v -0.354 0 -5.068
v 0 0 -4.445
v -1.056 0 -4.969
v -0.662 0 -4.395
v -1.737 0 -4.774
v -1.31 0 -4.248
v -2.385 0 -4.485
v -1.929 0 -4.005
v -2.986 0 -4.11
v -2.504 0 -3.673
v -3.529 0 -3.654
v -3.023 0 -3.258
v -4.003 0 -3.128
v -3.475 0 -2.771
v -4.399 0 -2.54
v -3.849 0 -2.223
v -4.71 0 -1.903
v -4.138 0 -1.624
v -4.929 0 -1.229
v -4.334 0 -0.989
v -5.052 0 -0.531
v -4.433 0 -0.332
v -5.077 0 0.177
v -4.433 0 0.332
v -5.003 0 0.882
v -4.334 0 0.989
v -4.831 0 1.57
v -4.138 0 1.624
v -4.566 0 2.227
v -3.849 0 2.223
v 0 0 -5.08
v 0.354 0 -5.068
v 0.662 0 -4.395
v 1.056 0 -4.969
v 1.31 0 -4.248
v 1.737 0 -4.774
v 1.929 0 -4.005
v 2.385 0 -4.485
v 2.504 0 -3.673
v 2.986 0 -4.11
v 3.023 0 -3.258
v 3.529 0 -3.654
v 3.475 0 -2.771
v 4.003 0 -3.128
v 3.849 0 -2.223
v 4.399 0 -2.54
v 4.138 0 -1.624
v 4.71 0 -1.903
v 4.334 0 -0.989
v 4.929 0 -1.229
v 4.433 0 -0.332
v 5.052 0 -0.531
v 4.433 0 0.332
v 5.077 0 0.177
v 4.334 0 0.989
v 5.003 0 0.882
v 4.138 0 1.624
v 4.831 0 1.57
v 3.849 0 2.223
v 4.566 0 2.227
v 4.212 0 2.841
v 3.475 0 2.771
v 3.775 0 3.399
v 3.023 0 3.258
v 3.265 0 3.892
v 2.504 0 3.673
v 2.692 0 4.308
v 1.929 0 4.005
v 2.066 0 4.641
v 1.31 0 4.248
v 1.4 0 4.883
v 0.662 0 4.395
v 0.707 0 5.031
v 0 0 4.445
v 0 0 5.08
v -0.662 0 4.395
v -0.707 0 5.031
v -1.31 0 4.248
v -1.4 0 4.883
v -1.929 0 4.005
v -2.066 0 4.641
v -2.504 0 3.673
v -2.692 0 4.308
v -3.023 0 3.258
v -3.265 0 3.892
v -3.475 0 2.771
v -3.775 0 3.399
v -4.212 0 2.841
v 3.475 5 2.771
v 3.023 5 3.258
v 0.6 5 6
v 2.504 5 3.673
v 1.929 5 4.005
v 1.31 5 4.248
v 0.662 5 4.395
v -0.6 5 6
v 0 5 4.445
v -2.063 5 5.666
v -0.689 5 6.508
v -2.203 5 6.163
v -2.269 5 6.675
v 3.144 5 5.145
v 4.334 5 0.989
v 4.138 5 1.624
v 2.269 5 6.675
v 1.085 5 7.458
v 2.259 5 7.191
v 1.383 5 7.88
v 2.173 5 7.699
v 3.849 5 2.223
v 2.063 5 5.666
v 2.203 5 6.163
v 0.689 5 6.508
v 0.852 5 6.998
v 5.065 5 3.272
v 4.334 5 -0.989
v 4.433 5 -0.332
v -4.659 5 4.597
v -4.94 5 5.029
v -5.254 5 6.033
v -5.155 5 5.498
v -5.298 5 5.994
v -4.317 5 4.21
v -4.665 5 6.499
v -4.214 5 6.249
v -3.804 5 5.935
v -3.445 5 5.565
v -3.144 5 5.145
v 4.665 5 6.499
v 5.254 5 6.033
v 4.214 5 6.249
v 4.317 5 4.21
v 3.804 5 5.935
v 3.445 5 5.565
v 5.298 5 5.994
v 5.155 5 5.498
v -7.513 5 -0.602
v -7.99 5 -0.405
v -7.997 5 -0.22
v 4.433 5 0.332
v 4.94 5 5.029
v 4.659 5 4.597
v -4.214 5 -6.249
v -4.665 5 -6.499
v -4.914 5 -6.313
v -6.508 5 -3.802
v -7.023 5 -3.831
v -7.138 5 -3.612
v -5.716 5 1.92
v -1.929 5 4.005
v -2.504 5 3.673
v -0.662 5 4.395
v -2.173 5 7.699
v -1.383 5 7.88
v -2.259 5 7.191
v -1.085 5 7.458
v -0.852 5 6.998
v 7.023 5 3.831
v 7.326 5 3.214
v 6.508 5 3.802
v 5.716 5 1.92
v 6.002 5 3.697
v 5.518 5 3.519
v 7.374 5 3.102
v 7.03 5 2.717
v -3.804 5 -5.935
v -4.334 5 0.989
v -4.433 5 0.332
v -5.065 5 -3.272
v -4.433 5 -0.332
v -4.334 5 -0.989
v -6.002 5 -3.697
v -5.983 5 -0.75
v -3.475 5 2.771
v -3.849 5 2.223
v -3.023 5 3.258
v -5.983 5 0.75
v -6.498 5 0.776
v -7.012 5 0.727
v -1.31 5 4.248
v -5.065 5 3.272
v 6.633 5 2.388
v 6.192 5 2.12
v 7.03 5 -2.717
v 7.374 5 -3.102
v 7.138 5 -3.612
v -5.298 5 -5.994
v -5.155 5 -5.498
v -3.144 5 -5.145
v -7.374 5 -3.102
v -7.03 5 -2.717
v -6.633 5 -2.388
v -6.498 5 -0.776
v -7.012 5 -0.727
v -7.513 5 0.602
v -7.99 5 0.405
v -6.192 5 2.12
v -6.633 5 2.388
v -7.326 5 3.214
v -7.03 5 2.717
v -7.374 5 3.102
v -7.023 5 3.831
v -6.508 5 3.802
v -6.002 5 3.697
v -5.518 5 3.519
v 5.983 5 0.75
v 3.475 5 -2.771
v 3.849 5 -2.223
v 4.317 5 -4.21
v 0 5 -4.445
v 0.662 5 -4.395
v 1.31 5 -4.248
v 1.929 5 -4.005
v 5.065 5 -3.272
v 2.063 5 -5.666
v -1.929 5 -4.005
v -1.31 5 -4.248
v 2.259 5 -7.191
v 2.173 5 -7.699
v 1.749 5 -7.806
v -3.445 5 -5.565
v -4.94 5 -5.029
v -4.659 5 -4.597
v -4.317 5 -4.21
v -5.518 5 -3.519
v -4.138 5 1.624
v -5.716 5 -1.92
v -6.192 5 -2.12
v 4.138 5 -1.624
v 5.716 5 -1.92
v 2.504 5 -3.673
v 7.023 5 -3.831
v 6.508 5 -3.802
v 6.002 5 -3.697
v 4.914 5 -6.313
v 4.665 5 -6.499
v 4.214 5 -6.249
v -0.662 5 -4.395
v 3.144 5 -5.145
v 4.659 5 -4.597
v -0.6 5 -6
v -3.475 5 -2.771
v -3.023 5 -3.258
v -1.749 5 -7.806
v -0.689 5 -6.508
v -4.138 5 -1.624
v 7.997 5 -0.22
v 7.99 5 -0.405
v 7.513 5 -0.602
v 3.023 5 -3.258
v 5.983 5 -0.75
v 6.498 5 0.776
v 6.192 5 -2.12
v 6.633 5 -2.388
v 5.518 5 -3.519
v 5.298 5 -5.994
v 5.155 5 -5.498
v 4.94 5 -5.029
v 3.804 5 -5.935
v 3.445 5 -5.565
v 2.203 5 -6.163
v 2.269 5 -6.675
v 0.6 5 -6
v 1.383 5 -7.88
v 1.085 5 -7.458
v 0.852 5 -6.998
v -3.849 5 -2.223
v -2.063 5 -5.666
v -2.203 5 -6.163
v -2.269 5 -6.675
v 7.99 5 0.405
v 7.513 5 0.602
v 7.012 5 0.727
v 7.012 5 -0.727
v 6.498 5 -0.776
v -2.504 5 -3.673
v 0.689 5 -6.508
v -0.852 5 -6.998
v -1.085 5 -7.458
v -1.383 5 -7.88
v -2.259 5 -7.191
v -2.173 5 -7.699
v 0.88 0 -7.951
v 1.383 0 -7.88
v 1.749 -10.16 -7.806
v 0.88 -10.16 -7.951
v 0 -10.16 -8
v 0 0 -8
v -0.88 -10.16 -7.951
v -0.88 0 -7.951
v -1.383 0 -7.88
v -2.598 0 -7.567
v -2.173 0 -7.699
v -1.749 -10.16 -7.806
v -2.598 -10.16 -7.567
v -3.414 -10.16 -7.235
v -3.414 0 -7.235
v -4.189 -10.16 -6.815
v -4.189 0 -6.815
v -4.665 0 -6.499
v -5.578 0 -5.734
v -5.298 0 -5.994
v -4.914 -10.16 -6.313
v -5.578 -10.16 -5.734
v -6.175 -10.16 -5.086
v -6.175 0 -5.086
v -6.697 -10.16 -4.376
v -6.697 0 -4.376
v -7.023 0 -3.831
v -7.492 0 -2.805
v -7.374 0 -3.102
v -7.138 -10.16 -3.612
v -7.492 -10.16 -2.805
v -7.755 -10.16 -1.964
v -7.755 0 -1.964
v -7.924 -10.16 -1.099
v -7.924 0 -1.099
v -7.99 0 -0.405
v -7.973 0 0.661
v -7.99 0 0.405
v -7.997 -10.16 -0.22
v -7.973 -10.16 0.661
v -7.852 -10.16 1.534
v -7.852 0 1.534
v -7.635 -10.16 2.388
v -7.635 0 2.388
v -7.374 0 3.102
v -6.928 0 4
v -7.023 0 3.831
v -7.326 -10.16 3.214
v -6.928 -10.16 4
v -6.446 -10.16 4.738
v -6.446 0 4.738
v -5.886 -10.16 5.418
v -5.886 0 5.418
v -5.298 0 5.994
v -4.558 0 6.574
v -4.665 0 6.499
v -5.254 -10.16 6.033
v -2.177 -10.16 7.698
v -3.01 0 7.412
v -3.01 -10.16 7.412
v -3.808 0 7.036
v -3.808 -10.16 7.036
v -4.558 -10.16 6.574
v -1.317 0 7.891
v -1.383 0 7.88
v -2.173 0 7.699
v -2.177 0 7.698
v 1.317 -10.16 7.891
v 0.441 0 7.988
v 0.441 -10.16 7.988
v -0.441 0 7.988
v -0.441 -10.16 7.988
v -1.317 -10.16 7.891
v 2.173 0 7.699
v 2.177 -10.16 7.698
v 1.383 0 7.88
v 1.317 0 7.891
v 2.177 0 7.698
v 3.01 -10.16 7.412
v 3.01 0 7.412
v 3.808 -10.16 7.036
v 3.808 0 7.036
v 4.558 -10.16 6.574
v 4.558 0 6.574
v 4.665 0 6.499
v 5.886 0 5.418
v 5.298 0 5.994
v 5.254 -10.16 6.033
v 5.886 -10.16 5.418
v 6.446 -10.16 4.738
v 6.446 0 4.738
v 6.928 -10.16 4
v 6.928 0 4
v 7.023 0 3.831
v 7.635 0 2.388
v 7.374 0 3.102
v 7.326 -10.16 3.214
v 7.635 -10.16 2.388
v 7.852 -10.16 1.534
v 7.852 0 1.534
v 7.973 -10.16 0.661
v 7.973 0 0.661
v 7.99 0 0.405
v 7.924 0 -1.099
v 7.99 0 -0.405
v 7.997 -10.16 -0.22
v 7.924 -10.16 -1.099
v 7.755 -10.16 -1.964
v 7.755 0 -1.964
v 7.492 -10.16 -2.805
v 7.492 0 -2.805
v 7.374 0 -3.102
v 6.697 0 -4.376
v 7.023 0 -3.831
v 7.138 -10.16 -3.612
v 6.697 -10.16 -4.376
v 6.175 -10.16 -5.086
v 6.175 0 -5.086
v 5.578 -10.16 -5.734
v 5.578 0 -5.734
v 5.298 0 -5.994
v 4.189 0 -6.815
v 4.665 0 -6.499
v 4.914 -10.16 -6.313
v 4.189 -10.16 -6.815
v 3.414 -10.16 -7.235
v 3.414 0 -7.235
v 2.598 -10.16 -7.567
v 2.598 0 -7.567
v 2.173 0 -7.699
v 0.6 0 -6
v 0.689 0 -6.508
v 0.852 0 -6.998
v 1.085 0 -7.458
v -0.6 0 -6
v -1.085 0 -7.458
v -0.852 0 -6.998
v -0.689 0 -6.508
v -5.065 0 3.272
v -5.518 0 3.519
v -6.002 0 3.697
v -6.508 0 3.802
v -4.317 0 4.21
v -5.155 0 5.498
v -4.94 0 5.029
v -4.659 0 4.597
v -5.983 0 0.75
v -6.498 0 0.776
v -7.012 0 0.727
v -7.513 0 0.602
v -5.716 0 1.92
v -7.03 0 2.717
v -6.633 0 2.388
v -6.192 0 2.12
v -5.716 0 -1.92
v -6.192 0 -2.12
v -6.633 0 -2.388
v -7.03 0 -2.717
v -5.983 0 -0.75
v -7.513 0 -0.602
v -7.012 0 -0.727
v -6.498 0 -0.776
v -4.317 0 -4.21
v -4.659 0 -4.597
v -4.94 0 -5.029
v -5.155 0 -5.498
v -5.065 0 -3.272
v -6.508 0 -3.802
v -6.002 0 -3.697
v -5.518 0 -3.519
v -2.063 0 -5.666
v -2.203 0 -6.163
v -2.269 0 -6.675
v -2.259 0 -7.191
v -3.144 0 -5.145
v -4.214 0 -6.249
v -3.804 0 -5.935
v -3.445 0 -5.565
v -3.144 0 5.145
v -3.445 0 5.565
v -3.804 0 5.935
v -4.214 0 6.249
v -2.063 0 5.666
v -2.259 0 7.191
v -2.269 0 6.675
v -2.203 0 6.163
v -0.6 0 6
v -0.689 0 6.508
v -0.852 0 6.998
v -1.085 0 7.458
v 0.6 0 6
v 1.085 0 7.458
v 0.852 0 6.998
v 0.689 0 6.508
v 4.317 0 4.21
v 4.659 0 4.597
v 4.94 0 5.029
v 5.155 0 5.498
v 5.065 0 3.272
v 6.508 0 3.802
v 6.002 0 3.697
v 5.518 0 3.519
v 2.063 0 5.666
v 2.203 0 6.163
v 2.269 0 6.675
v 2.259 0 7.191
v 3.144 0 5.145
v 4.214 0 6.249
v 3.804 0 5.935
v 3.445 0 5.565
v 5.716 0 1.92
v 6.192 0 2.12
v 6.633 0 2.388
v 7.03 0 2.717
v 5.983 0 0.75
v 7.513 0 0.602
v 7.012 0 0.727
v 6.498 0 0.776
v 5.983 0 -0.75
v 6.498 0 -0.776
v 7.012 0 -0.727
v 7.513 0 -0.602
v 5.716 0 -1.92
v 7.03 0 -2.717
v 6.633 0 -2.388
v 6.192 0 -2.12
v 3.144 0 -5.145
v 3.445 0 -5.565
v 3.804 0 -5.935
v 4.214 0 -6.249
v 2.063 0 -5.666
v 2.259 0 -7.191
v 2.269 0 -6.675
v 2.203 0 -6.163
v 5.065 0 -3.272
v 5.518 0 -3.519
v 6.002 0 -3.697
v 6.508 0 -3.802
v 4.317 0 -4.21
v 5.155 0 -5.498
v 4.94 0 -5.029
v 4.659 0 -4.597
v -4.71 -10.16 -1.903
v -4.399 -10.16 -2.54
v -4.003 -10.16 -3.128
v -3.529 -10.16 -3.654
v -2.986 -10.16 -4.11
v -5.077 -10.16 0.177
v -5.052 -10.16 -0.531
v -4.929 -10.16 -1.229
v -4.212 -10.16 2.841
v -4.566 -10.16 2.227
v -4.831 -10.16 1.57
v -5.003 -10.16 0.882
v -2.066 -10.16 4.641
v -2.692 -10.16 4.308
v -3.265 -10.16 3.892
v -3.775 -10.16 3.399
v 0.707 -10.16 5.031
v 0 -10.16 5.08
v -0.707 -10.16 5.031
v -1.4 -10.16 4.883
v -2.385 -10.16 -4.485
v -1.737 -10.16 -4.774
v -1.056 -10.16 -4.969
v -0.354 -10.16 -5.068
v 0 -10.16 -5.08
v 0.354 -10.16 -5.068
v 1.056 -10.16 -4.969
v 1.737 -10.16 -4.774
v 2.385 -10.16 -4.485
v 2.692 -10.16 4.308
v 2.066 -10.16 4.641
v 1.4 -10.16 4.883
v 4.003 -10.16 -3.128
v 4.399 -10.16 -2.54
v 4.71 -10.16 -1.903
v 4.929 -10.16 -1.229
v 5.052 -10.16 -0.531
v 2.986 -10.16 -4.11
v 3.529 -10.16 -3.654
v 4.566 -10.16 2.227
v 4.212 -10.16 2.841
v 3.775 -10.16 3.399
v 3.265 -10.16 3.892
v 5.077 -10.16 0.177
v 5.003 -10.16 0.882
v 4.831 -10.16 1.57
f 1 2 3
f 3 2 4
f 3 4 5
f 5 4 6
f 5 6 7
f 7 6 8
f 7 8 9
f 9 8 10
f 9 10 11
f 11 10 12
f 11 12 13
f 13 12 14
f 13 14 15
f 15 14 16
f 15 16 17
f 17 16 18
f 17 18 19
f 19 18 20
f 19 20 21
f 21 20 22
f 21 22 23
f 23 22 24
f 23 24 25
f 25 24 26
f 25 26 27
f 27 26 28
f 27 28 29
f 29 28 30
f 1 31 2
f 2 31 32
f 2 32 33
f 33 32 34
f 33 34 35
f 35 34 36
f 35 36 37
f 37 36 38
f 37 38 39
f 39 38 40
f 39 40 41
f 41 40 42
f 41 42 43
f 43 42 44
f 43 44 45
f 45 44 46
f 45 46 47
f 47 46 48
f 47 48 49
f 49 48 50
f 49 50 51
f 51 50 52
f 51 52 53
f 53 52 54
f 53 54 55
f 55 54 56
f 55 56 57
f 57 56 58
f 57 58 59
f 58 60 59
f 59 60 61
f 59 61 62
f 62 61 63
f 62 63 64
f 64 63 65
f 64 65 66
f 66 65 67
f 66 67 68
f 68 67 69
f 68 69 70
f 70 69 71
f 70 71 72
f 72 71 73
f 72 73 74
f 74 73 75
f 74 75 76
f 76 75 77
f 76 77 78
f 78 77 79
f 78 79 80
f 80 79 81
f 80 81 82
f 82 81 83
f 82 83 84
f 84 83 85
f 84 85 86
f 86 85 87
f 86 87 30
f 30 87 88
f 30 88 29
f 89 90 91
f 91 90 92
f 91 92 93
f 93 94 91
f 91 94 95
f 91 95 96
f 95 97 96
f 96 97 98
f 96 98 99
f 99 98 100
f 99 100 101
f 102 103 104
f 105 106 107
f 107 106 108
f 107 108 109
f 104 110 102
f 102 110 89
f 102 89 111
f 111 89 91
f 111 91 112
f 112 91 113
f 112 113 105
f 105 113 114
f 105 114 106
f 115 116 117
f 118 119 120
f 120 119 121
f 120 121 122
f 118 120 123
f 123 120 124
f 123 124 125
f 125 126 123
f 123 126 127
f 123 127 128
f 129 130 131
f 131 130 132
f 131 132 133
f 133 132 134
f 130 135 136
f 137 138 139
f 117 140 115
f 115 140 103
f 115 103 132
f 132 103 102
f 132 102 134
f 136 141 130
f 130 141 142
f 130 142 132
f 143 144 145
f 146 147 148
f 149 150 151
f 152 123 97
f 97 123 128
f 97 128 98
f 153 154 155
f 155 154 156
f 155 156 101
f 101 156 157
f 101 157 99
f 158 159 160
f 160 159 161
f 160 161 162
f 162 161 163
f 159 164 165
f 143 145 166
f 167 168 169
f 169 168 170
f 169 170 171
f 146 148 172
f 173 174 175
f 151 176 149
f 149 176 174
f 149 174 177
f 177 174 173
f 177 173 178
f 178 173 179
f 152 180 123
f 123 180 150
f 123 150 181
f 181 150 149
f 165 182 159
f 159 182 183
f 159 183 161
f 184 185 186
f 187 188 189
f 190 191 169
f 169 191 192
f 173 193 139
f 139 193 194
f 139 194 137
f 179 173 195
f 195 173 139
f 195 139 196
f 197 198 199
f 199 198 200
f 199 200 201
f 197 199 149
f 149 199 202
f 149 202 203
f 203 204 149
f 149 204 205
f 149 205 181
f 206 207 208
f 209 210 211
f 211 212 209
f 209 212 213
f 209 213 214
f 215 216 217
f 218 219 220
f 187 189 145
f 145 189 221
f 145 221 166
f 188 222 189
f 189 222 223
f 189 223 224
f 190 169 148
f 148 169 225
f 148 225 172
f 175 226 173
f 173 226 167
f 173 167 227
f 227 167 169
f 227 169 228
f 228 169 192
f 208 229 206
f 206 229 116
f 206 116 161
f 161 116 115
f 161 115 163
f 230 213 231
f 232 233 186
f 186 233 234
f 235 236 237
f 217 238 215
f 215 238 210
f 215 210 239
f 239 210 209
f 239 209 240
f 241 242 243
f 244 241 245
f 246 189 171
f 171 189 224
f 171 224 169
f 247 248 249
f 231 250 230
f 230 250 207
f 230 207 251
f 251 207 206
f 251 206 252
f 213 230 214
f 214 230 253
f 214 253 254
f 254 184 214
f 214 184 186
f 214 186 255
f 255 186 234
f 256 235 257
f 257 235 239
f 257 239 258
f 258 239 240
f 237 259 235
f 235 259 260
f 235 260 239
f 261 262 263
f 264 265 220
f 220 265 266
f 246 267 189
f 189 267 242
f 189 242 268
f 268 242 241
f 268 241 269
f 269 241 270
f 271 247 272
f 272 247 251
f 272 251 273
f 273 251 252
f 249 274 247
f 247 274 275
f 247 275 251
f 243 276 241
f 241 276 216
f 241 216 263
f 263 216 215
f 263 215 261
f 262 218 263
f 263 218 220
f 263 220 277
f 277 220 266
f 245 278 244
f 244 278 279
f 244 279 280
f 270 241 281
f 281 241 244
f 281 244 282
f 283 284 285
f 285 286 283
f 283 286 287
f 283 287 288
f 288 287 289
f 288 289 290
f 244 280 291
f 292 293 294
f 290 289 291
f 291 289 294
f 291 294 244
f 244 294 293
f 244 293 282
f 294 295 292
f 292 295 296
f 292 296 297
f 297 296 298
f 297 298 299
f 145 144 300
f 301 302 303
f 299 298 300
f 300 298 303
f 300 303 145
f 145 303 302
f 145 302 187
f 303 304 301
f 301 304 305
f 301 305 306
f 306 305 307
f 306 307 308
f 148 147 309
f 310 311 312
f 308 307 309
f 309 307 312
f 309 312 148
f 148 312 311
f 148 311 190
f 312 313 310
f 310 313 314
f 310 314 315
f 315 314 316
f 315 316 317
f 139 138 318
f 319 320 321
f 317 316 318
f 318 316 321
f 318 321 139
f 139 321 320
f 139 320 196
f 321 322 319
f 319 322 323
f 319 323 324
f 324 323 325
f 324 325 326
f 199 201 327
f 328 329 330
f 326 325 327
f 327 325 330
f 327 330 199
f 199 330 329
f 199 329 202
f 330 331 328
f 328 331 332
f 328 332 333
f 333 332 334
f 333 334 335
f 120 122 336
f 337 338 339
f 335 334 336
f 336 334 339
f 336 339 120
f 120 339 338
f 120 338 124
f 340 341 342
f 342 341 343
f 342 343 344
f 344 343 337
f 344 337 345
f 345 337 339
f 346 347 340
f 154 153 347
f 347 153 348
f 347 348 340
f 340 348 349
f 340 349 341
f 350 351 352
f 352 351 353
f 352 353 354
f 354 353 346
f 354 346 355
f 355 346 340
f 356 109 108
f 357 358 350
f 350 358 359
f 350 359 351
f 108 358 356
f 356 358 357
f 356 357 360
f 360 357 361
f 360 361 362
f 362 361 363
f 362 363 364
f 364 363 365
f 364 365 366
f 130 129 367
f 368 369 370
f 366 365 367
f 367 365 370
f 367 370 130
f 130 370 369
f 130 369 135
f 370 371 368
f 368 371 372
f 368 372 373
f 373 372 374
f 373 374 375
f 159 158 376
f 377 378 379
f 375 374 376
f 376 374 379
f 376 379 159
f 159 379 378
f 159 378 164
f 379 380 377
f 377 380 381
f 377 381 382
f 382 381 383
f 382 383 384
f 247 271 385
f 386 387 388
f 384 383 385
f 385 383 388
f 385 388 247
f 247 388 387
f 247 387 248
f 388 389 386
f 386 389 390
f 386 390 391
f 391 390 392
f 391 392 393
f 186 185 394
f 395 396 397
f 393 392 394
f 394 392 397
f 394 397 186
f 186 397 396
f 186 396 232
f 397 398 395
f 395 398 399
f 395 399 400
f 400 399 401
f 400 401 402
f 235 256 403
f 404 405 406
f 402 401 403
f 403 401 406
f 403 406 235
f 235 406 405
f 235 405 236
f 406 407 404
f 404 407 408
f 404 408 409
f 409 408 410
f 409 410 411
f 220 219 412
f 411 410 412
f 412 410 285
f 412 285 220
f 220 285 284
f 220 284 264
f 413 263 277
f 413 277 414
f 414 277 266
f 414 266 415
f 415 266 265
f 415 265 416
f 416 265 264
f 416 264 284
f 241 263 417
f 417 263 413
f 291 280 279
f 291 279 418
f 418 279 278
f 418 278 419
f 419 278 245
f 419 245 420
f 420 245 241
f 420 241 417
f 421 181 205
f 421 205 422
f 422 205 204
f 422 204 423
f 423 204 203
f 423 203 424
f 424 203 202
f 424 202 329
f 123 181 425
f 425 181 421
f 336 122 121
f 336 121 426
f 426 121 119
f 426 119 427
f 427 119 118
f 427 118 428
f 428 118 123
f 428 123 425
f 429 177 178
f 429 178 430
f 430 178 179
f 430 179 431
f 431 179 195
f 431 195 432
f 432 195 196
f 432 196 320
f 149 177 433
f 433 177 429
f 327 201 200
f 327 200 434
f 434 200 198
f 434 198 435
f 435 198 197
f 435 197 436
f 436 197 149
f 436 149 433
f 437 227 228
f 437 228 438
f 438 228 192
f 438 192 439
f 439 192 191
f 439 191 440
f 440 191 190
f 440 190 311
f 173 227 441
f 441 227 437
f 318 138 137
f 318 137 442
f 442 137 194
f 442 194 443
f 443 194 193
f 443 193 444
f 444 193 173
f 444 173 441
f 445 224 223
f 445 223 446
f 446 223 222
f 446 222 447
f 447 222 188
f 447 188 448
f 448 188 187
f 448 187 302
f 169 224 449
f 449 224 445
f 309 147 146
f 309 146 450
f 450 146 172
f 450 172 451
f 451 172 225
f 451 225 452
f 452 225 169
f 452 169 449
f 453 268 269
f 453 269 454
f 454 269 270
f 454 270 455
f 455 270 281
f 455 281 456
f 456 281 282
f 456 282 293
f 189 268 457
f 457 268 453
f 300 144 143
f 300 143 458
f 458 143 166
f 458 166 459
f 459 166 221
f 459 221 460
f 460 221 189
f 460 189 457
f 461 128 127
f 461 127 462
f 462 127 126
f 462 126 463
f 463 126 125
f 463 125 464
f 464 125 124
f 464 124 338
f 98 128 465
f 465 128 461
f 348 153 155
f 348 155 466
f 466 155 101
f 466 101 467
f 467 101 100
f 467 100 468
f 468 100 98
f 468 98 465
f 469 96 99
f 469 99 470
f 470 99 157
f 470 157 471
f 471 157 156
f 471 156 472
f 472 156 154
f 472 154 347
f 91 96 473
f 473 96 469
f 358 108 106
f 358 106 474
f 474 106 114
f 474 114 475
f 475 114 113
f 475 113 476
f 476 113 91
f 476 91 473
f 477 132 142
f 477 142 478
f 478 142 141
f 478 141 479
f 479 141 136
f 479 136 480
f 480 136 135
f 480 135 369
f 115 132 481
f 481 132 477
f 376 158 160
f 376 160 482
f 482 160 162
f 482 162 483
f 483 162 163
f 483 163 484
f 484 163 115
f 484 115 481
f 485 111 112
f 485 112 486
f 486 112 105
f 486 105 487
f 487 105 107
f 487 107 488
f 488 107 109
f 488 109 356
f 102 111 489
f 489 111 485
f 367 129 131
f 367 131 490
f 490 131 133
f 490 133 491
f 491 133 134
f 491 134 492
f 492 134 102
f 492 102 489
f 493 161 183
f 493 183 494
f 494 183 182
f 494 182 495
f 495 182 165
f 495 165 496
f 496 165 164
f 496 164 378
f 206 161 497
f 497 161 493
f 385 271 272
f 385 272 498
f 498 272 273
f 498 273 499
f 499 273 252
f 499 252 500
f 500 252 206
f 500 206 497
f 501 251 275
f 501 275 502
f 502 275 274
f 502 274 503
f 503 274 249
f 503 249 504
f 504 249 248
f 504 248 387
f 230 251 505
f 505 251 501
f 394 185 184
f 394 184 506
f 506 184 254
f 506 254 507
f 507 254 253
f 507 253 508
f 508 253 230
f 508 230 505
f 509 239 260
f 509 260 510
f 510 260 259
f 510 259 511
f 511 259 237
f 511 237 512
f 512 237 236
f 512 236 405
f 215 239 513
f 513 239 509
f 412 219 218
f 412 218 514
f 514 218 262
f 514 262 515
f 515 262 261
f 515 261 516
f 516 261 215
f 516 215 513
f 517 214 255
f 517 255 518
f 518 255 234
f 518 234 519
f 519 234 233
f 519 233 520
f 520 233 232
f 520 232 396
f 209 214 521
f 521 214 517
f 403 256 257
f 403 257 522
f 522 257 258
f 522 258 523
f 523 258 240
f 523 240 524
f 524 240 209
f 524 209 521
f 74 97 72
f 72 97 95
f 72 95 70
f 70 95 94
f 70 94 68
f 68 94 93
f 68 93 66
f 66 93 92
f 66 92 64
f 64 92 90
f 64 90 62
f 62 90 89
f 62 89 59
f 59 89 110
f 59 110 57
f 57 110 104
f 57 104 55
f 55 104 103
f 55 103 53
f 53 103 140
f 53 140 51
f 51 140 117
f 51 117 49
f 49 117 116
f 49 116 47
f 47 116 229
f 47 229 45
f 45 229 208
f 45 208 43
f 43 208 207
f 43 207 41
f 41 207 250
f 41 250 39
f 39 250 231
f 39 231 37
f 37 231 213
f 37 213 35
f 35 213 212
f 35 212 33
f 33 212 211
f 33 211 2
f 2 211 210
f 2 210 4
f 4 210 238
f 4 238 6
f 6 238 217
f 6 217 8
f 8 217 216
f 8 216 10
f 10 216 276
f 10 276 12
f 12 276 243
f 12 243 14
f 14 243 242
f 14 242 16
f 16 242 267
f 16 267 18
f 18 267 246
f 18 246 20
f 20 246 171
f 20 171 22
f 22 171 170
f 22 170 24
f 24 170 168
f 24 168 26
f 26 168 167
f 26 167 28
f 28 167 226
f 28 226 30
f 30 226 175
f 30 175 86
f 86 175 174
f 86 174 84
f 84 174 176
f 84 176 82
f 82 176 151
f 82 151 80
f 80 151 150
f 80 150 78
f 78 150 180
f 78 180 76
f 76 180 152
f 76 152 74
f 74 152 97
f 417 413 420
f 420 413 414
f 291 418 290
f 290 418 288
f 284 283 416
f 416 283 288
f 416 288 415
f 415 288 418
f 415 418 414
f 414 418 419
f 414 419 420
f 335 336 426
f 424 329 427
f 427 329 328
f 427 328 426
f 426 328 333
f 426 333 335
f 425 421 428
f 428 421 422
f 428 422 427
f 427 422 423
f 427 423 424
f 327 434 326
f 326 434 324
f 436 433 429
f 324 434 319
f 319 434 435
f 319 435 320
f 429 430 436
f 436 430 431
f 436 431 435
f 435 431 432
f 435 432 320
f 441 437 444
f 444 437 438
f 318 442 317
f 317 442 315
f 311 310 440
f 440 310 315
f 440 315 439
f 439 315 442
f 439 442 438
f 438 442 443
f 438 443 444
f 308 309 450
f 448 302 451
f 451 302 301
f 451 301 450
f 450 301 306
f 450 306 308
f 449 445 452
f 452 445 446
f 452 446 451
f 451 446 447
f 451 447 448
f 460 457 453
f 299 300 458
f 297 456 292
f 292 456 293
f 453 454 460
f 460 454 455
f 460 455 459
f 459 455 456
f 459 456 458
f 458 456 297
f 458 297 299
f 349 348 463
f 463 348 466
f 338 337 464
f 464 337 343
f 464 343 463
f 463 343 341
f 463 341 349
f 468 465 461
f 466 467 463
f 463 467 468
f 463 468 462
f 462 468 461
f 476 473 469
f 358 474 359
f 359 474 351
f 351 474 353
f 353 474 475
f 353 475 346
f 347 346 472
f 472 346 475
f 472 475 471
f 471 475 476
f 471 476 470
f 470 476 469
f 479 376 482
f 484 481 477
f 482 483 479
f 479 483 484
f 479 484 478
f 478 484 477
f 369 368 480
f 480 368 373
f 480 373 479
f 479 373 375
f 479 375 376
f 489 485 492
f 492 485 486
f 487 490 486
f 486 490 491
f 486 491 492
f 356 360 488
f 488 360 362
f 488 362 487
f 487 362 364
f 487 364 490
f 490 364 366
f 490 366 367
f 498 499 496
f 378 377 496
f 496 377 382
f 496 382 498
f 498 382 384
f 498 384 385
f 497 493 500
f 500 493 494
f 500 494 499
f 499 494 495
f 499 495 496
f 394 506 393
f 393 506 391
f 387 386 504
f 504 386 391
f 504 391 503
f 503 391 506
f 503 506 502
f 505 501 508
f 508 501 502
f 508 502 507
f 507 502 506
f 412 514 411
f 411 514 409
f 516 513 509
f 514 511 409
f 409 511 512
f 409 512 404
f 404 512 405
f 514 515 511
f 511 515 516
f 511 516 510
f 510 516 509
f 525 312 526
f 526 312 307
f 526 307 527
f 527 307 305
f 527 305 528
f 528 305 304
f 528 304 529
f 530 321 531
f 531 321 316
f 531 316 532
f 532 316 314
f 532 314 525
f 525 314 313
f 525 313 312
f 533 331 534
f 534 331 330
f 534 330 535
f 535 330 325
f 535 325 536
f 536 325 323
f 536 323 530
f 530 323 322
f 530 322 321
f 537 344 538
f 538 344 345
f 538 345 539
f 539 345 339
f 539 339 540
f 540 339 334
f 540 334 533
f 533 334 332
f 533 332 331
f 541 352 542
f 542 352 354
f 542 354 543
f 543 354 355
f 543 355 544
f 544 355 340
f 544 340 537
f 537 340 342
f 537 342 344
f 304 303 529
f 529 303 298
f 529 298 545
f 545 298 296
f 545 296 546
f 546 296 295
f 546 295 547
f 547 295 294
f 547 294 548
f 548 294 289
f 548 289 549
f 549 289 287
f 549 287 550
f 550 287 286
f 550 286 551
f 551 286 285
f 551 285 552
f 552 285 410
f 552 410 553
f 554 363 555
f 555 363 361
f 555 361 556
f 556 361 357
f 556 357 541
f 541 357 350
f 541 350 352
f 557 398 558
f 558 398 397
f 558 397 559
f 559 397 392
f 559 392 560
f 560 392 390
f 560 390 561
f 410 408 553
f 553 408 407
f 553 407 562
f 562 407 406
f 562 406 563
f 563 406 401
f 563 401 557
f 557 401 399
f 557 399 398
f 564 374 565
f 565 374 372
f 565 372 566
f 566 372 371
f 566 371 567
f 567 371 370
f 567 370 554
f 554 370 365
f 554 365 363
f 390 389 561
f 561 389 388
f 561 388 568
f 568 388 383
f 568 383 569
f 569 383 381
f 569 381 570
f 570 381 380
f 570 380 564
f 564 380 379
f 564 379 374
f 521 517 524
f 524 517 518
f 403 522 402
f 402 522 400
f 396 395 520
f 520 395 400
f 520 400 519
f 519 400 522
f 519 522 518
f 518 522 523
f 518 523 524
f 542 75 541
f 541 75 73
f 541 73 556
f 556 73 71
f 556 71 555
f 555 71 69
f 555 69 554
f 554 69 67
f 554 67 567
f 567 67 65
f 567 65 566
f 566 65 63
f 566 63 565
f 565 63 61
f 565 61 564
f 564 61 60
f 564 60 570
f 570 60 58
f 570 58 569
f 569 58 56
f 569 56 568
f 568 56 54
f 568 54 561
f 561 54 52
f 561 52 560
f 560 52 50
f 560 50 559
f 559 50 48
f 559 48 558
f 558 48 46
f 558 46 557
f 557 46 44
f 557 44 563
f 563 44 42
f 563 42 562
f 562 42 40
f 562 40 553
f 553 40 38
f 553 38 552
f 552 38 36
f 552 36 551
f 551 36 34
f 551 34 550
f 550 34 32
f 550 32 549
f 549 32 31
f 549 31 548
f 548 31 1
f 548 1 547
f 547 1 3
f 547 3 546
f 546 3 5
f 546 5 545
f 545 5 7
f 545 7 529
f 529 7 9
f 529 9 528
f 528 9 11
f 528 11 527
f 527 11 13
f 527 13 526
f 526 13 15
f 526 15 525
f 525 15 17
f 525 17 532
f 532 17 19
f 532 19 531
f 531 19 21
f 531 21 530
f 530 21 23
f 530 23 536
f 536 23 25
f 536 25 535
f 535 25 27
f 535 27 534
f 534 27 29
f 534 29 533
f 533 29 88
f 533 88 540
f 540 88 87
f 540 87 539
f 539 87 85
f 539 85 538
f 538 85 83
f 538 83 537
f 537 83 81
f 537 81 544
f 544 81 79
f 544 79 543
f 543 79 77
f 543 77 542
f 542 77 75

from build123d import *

# Parameters (mm, degrees)
SKETCH3_R           = 8
BOSS_EXTRUDE3_DEPTH = 5
CUT_EXTRUDE1_DEPTH  = 5
SKETCH6_R           = 4.445
CUT_EXTRUDE2_DEPTH  = 6
SKETCH8_R           = 8
SKETCH8_R_2         = 5.08
BOSS_EXTRUDE4_DEPTH = 10.16


with BuildPart() as part:
    # Sketch3 → Boss-Extrude3 (new body)
    with BuildSketch(Plane(origin=(0, 0, 0), x_dir=(1, 0, 0), z_dir=(0, 1, 0))):
        Circle(SKETCH3_R)
    extrude(amount=BOSS_EXTRUDE3_DEPTH)

    # Sketch4 → Cut-Extrude1 (cut)
    with BuildSketch(Plane(origin=(0, 5, 0), x_dir=(1, 0, 0), z_dir=(0, 1, 0))):
        with BuildLine():
            Line((-0.5999988, 6), (0.5999988, 6))
            ThreePointArc((0.5999988, 6), (0.85189286, 6.99797085), (1.383185318, 7.879517649))
            ThreePointArc((1.383185318, 7.879517649), (0, 8), (-1.383185318, 7.879517649))
            ThreePointArc((-1.383185318, 7.879517649), (-0.85189286, 6.99797085), (-0.5999988, 6))
        make_face()
        with BuildLine():
            Line((2.062722195, 5.66614293), (3.143882674, 5.145483485))
            ThreePointArc((3.143882674, 5.145483485), (3.803834704, 5.935331415), (4.66500149, 6.499058478))
            ThreePointArc((4.66500149, 6.499058478), (3.471069913, 7.207750943), (2.17258767, 7.699341713))
            ThreePointArc((2.17258767, 7.699341713), (2.268776813, 6.674576334), (2.062722195, 5.66614293))
        make_face()
        with BuildLine():
            Line((4.316895762, 4.210036762), (5.065082028, 3.27184086))
            ThreePointArc((5.065082028, 3.27184086), (6.002380434, 3.697126801), (7.022856904, 3.83138107))
            ThreePointArc((7.022856904, 3.83138107), (6.25465186, 4.987918415), (5.298053025, 5.994216725))
            ThreePointArc((5.298053025, 5.994216725), (4.940087414, 5.029200116), (4.316895762, 4.210036762))
        make_face()
        with BuildLine():
            Line((5.71605518, 1.920081181), (5.983079766, 0.750170026))
            ThreePointArc((5.983079766, 0.750170026), (7.012081105, 0.726660882), (7.989749379, 0.404851652))
            ThreePointArc((7.989749379, 0.404851652), (7.799423297, 1.780167472), (7.374174001, 3.1018636))
            ThreePointArc((7.374174001, 3.1018636), (6.632953116, 2.387729136), (5.71605518, 1.920081181))
        make_face()
        with BuildLine():
            Line((5.983079766, -0.750170026), (5.71605518, -1.920081181))
            ThreePointArc((5.71605518, -1.920081181), (6.632953116, -2.387729136), (7.374174001, -3.1018636))
            ThreePointArc((7.374174001, -3.1018636), (7.799423297, -1.780167472), (7.989749379, -0.404851652))
            ThreePointArc((7.989749379, -0.404851652), (7.012081105, -0.726660882), (5.983079766, -0.750170026))
        make_face()
        with BuildLine():
            Line((5.065082028, -3.27184086), (4.316895762, -4.210036762))
            ThreePointArc((4.316895762, -4.210036762), (4.940087414, -5.029200116), (5.298053025, -5.994216725))
            ThreePointArc((5.298053025, -5.994216725), (6.25465186, -4.987918415), (7.022856904, -3.83138107))
            ThreePointArc((7.022856904, -3.83138107), (6.002380434, -3.697126801), (5.065082028, -3.27184086))
        make_face()
        with BuildLine():
            Line((3.143882674, -5.145483485), (2.062722195, -5.66614293))
            ThreePointArc((2.062722195, -5.66614293), (2.268776813, -6.674576334), (2.17258767, -7.699341713))
            ThreePointArc((2.17258767, -7.699341713), (3.471069913, -7.207750943), (4.66500149, -6.499058478))
            ThreePointArc((4.66500149, -6.499058478), (3.803834704, -5.935331415), (3.143882674, -5.145483485))
        make_face()
        with BuildLine():
            Line((0.5999988, -6), (-0.5999988, -6))
            ThreePointArc((-0.5999988, -6), (-0.85189286, -6.99797085), (-1.383185318, -7.879517649))
            ThreePointArc((-1.383185318, -7.879517649), (0, -8), (1.383185318, -7.879517649))
            ThreePointArc((1.383185318, -7.879517649), (0.85189286, -6.99797085), (0.5999988, -6))
        make_face()
        with BuildLine():
            Line((-2.062722195, -5.66614293), (-3.143882674, -5.145483485))
            ThreePointArc((-3.143882674, -5.145483485), (-3.803834704, -5.935331415), (-4.66500149, -6.499058478))
            ThreePointArc((-4.66500149, -6.499058478), (-3.471069913, -7.207750943), (-2.17258767, -7.699341713))
            ThreePointArc((-2.17258767, -7.699341713), (-2.268776813, -6.674576334), (-2.062722195, -5.66614293))
        make_face()
        with BuildLine():
            Line((-4.316895762, -4.210036762), (-5.065082028, -3.27184086))
            ThreePointArc((-5.065082028, -3.27184086), (-6.002380434, -3.697126801), (-7.022856904, -3.83138107))
            ThreePointArc((-7.022856904, -3.83138107), (-6.25465186, -4.987918415), (-5.298053025, -5.994216725))
            ThreePointArc((-5.298053025, -5.994216725), (-4.940087414, -5.029200116), (-4.316895762, -4.210036762))
        make_face()
        with BuildLine():
            Line((-5.71605518, -1.920081181), (-5.983079766, -0.750170026))
            ThreePointArc((-5.983079766, -0.750170026), (-7.012081105, -0.726660882), (-7.989749379, -0.404851652))
            ThreePointArc((-7.989749379, -0.404851652), (-7.799423297, -1.780167472), (-7.374174001, -3.1018636))
            ThreePointArc((-7.374174001, -3.1018636), (-6.632953116, -2.387729136), (-5.71605518, -1.920081181))
        make_face()
        with BuildLine():
            Line((-5.983079766, 0.750170026), (-5.71605518, 1.920081181))
            ThreePointArc((-5.71605518, 1.920081181), (-6.632953116, 2.387729136), (-7.374174001, 3.1018636))
            ThreePointArc((-7.374174001, 3.1018636), (-7.799423297, 1.780167472), (-7.989749379, 0.404851652))
            ThreePointArc((-7.989749379, 0.404851652), (-7.012081105, 0.726660882), (-5.983079766, 0.750170026))
        make_face()
        with BuildLine():
            Line((-5.065082028, 3.27184086), (-4.316895762, 4.210036762))
            ThreePointArc((-4.316895762, 4.210036762), (-4.940087414, 5.029200116), (-5.298053025, 5.994216725))
            ThreePointArc((-5.298053025, 5.994216725), (-6.25465186, 4.987918415), (-7.022856904, 3.83138107))
            ThreePointArc((-7.022856904, 3.83138107), (-6.002380434, 3.697126801), (-5.065082028, 3.27184086))
        make_face()
        with BuildLine():
            Line((-3.143882674, 5.145483485), (-2.062722195, 5.66614293))
            ThreePointArc((-2.062722195, 5.66614293), (-2.268776813, 6.674576334), (-2.17258767, 7.699341713))
            ThreePointArc((-2.17258767, 7.699341713), (-3.471069913, 7.207750943), (-4.66500149, 6.499058478))
            ThreePointArc((-4.66500149, 6.499058478), (-3.803834704, 5.935331415), (-3.143882674, 5.145483485))
        make_face()
    extrude(amount=-CUT_EXTRUDE1_DEPTH, mode=Mode.SUBTRACT)

    # Sketch6 → Cut-Extrude2 (cut, through all)
    with BuildSketch(Plane(origin=(0, 5, 0), x_dir=(1, 0, 0), z_dir=(0, 1, 0))):
        Circle(SKETCH6_R)
    extrude(amount=-CUT_EXTRUDE2_DEPTH, mode=Mode.SUBTRACT)

    # Sketch8 → Boss-Extrude4 (add)
    with BuildSketch(Plane.XZ):
        Circle(SKETCH8_R)
        Circle(SKETCH8_R_2, mode=Mode.SUBTRACT)
    extrude(amount=BOSS_EXTRUDE4_DEPTH)


solid = part.part
